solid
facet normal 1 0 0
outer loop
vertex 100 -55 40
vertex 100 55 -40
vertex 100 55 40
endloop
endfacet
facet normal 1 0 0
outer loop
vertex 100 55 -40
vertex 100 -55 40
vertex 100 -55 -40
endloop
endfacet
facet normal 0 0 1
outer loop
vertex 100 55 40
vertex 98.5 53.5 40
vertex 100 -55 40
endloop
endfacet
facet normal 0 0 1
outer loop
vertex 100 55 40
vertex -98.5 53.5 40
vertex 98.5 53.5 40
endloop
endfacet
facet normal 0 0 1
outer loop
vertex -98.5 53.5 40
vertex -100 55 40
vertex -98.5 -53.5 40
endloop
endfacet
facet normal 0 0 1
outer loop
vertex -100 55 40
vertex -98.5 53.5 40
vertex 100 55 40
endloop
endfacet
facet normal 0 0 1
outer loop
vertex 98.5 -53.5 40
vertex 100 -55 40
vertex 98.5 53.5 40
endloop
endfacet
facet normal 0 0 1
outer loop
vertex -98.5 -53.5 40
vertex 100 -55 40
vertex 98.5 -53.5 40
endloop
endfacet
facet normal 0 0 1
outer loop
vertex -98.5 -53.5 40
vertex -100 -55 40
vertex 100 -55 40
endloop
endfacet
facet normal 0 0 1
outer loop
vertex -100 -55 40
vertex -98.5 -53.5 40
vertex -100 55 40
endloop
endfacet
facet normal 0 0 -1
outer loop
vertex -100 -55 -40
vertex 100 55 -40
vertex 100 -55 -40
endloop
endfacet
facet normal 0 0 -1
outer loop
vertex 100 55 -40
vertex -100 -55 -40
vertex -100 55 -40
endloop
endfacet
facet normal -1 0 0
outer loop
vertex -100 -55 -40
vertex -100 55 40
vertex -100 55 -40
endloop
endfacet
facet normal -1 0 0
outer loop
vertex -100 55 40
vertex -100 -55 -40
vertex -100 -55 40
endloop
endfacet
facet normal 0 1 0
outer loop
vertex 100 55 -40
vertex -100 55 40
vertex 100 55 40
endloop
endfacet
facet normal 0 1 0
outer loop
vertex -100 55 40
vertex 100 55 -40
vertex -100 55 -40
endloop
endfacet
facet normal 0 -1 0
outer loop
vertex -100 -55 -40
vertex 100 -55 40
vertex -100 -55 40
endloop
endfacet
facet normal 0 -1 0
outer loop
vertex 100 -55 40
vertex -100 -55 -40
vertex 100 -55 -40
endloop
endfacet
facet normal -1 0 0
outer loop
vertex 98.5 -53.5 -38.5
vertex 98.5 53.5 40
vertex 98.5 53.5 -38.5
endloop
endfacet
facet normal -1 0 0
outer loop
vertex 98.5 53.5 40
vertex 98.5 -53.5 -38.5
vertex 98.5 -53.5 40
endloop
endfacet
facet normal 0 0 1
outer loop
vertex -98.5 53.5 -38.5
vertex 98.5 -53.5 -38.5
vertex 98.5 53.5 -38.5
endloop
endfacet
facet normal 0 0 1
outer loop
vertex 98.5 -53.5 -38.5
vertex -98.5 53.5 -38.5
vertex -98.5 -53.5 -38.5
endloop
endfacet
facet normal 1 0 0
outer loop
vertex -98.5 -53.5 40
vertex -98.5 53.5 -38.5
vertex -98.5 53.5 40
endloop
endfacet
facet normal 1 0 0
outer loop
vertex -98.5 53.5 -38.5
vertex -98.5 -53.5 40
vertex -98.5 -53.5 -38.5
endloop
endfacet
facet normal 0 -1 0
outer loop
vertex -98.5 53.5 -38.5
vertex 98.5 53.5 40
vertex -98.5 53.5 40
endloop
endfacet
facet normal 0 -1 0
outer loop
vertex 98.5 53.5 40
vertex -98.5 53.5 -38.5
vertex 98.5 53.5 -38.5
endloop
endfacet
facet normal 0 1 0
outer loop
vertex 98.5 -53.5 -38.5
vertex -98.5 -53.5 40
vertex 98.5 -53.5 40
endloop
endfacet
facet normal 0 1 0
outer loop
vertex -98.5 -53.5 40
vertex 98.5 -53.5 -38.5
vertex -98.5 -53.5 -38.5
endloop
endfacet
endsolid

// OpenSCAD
// ========================================
// a 200 x 110 x 80 mm enclosure with 1.5 mm wall thickness
// NeuroCAD canonical IR; dimensions are millimetres
// ========================================
$fn = 48;

difference() {
  cube(size=[200, 110, 80], center=true);
  translate([0, 0, 0.85]) {
    cube(size=[197, 107, 78.7], center=true);
  }
}
